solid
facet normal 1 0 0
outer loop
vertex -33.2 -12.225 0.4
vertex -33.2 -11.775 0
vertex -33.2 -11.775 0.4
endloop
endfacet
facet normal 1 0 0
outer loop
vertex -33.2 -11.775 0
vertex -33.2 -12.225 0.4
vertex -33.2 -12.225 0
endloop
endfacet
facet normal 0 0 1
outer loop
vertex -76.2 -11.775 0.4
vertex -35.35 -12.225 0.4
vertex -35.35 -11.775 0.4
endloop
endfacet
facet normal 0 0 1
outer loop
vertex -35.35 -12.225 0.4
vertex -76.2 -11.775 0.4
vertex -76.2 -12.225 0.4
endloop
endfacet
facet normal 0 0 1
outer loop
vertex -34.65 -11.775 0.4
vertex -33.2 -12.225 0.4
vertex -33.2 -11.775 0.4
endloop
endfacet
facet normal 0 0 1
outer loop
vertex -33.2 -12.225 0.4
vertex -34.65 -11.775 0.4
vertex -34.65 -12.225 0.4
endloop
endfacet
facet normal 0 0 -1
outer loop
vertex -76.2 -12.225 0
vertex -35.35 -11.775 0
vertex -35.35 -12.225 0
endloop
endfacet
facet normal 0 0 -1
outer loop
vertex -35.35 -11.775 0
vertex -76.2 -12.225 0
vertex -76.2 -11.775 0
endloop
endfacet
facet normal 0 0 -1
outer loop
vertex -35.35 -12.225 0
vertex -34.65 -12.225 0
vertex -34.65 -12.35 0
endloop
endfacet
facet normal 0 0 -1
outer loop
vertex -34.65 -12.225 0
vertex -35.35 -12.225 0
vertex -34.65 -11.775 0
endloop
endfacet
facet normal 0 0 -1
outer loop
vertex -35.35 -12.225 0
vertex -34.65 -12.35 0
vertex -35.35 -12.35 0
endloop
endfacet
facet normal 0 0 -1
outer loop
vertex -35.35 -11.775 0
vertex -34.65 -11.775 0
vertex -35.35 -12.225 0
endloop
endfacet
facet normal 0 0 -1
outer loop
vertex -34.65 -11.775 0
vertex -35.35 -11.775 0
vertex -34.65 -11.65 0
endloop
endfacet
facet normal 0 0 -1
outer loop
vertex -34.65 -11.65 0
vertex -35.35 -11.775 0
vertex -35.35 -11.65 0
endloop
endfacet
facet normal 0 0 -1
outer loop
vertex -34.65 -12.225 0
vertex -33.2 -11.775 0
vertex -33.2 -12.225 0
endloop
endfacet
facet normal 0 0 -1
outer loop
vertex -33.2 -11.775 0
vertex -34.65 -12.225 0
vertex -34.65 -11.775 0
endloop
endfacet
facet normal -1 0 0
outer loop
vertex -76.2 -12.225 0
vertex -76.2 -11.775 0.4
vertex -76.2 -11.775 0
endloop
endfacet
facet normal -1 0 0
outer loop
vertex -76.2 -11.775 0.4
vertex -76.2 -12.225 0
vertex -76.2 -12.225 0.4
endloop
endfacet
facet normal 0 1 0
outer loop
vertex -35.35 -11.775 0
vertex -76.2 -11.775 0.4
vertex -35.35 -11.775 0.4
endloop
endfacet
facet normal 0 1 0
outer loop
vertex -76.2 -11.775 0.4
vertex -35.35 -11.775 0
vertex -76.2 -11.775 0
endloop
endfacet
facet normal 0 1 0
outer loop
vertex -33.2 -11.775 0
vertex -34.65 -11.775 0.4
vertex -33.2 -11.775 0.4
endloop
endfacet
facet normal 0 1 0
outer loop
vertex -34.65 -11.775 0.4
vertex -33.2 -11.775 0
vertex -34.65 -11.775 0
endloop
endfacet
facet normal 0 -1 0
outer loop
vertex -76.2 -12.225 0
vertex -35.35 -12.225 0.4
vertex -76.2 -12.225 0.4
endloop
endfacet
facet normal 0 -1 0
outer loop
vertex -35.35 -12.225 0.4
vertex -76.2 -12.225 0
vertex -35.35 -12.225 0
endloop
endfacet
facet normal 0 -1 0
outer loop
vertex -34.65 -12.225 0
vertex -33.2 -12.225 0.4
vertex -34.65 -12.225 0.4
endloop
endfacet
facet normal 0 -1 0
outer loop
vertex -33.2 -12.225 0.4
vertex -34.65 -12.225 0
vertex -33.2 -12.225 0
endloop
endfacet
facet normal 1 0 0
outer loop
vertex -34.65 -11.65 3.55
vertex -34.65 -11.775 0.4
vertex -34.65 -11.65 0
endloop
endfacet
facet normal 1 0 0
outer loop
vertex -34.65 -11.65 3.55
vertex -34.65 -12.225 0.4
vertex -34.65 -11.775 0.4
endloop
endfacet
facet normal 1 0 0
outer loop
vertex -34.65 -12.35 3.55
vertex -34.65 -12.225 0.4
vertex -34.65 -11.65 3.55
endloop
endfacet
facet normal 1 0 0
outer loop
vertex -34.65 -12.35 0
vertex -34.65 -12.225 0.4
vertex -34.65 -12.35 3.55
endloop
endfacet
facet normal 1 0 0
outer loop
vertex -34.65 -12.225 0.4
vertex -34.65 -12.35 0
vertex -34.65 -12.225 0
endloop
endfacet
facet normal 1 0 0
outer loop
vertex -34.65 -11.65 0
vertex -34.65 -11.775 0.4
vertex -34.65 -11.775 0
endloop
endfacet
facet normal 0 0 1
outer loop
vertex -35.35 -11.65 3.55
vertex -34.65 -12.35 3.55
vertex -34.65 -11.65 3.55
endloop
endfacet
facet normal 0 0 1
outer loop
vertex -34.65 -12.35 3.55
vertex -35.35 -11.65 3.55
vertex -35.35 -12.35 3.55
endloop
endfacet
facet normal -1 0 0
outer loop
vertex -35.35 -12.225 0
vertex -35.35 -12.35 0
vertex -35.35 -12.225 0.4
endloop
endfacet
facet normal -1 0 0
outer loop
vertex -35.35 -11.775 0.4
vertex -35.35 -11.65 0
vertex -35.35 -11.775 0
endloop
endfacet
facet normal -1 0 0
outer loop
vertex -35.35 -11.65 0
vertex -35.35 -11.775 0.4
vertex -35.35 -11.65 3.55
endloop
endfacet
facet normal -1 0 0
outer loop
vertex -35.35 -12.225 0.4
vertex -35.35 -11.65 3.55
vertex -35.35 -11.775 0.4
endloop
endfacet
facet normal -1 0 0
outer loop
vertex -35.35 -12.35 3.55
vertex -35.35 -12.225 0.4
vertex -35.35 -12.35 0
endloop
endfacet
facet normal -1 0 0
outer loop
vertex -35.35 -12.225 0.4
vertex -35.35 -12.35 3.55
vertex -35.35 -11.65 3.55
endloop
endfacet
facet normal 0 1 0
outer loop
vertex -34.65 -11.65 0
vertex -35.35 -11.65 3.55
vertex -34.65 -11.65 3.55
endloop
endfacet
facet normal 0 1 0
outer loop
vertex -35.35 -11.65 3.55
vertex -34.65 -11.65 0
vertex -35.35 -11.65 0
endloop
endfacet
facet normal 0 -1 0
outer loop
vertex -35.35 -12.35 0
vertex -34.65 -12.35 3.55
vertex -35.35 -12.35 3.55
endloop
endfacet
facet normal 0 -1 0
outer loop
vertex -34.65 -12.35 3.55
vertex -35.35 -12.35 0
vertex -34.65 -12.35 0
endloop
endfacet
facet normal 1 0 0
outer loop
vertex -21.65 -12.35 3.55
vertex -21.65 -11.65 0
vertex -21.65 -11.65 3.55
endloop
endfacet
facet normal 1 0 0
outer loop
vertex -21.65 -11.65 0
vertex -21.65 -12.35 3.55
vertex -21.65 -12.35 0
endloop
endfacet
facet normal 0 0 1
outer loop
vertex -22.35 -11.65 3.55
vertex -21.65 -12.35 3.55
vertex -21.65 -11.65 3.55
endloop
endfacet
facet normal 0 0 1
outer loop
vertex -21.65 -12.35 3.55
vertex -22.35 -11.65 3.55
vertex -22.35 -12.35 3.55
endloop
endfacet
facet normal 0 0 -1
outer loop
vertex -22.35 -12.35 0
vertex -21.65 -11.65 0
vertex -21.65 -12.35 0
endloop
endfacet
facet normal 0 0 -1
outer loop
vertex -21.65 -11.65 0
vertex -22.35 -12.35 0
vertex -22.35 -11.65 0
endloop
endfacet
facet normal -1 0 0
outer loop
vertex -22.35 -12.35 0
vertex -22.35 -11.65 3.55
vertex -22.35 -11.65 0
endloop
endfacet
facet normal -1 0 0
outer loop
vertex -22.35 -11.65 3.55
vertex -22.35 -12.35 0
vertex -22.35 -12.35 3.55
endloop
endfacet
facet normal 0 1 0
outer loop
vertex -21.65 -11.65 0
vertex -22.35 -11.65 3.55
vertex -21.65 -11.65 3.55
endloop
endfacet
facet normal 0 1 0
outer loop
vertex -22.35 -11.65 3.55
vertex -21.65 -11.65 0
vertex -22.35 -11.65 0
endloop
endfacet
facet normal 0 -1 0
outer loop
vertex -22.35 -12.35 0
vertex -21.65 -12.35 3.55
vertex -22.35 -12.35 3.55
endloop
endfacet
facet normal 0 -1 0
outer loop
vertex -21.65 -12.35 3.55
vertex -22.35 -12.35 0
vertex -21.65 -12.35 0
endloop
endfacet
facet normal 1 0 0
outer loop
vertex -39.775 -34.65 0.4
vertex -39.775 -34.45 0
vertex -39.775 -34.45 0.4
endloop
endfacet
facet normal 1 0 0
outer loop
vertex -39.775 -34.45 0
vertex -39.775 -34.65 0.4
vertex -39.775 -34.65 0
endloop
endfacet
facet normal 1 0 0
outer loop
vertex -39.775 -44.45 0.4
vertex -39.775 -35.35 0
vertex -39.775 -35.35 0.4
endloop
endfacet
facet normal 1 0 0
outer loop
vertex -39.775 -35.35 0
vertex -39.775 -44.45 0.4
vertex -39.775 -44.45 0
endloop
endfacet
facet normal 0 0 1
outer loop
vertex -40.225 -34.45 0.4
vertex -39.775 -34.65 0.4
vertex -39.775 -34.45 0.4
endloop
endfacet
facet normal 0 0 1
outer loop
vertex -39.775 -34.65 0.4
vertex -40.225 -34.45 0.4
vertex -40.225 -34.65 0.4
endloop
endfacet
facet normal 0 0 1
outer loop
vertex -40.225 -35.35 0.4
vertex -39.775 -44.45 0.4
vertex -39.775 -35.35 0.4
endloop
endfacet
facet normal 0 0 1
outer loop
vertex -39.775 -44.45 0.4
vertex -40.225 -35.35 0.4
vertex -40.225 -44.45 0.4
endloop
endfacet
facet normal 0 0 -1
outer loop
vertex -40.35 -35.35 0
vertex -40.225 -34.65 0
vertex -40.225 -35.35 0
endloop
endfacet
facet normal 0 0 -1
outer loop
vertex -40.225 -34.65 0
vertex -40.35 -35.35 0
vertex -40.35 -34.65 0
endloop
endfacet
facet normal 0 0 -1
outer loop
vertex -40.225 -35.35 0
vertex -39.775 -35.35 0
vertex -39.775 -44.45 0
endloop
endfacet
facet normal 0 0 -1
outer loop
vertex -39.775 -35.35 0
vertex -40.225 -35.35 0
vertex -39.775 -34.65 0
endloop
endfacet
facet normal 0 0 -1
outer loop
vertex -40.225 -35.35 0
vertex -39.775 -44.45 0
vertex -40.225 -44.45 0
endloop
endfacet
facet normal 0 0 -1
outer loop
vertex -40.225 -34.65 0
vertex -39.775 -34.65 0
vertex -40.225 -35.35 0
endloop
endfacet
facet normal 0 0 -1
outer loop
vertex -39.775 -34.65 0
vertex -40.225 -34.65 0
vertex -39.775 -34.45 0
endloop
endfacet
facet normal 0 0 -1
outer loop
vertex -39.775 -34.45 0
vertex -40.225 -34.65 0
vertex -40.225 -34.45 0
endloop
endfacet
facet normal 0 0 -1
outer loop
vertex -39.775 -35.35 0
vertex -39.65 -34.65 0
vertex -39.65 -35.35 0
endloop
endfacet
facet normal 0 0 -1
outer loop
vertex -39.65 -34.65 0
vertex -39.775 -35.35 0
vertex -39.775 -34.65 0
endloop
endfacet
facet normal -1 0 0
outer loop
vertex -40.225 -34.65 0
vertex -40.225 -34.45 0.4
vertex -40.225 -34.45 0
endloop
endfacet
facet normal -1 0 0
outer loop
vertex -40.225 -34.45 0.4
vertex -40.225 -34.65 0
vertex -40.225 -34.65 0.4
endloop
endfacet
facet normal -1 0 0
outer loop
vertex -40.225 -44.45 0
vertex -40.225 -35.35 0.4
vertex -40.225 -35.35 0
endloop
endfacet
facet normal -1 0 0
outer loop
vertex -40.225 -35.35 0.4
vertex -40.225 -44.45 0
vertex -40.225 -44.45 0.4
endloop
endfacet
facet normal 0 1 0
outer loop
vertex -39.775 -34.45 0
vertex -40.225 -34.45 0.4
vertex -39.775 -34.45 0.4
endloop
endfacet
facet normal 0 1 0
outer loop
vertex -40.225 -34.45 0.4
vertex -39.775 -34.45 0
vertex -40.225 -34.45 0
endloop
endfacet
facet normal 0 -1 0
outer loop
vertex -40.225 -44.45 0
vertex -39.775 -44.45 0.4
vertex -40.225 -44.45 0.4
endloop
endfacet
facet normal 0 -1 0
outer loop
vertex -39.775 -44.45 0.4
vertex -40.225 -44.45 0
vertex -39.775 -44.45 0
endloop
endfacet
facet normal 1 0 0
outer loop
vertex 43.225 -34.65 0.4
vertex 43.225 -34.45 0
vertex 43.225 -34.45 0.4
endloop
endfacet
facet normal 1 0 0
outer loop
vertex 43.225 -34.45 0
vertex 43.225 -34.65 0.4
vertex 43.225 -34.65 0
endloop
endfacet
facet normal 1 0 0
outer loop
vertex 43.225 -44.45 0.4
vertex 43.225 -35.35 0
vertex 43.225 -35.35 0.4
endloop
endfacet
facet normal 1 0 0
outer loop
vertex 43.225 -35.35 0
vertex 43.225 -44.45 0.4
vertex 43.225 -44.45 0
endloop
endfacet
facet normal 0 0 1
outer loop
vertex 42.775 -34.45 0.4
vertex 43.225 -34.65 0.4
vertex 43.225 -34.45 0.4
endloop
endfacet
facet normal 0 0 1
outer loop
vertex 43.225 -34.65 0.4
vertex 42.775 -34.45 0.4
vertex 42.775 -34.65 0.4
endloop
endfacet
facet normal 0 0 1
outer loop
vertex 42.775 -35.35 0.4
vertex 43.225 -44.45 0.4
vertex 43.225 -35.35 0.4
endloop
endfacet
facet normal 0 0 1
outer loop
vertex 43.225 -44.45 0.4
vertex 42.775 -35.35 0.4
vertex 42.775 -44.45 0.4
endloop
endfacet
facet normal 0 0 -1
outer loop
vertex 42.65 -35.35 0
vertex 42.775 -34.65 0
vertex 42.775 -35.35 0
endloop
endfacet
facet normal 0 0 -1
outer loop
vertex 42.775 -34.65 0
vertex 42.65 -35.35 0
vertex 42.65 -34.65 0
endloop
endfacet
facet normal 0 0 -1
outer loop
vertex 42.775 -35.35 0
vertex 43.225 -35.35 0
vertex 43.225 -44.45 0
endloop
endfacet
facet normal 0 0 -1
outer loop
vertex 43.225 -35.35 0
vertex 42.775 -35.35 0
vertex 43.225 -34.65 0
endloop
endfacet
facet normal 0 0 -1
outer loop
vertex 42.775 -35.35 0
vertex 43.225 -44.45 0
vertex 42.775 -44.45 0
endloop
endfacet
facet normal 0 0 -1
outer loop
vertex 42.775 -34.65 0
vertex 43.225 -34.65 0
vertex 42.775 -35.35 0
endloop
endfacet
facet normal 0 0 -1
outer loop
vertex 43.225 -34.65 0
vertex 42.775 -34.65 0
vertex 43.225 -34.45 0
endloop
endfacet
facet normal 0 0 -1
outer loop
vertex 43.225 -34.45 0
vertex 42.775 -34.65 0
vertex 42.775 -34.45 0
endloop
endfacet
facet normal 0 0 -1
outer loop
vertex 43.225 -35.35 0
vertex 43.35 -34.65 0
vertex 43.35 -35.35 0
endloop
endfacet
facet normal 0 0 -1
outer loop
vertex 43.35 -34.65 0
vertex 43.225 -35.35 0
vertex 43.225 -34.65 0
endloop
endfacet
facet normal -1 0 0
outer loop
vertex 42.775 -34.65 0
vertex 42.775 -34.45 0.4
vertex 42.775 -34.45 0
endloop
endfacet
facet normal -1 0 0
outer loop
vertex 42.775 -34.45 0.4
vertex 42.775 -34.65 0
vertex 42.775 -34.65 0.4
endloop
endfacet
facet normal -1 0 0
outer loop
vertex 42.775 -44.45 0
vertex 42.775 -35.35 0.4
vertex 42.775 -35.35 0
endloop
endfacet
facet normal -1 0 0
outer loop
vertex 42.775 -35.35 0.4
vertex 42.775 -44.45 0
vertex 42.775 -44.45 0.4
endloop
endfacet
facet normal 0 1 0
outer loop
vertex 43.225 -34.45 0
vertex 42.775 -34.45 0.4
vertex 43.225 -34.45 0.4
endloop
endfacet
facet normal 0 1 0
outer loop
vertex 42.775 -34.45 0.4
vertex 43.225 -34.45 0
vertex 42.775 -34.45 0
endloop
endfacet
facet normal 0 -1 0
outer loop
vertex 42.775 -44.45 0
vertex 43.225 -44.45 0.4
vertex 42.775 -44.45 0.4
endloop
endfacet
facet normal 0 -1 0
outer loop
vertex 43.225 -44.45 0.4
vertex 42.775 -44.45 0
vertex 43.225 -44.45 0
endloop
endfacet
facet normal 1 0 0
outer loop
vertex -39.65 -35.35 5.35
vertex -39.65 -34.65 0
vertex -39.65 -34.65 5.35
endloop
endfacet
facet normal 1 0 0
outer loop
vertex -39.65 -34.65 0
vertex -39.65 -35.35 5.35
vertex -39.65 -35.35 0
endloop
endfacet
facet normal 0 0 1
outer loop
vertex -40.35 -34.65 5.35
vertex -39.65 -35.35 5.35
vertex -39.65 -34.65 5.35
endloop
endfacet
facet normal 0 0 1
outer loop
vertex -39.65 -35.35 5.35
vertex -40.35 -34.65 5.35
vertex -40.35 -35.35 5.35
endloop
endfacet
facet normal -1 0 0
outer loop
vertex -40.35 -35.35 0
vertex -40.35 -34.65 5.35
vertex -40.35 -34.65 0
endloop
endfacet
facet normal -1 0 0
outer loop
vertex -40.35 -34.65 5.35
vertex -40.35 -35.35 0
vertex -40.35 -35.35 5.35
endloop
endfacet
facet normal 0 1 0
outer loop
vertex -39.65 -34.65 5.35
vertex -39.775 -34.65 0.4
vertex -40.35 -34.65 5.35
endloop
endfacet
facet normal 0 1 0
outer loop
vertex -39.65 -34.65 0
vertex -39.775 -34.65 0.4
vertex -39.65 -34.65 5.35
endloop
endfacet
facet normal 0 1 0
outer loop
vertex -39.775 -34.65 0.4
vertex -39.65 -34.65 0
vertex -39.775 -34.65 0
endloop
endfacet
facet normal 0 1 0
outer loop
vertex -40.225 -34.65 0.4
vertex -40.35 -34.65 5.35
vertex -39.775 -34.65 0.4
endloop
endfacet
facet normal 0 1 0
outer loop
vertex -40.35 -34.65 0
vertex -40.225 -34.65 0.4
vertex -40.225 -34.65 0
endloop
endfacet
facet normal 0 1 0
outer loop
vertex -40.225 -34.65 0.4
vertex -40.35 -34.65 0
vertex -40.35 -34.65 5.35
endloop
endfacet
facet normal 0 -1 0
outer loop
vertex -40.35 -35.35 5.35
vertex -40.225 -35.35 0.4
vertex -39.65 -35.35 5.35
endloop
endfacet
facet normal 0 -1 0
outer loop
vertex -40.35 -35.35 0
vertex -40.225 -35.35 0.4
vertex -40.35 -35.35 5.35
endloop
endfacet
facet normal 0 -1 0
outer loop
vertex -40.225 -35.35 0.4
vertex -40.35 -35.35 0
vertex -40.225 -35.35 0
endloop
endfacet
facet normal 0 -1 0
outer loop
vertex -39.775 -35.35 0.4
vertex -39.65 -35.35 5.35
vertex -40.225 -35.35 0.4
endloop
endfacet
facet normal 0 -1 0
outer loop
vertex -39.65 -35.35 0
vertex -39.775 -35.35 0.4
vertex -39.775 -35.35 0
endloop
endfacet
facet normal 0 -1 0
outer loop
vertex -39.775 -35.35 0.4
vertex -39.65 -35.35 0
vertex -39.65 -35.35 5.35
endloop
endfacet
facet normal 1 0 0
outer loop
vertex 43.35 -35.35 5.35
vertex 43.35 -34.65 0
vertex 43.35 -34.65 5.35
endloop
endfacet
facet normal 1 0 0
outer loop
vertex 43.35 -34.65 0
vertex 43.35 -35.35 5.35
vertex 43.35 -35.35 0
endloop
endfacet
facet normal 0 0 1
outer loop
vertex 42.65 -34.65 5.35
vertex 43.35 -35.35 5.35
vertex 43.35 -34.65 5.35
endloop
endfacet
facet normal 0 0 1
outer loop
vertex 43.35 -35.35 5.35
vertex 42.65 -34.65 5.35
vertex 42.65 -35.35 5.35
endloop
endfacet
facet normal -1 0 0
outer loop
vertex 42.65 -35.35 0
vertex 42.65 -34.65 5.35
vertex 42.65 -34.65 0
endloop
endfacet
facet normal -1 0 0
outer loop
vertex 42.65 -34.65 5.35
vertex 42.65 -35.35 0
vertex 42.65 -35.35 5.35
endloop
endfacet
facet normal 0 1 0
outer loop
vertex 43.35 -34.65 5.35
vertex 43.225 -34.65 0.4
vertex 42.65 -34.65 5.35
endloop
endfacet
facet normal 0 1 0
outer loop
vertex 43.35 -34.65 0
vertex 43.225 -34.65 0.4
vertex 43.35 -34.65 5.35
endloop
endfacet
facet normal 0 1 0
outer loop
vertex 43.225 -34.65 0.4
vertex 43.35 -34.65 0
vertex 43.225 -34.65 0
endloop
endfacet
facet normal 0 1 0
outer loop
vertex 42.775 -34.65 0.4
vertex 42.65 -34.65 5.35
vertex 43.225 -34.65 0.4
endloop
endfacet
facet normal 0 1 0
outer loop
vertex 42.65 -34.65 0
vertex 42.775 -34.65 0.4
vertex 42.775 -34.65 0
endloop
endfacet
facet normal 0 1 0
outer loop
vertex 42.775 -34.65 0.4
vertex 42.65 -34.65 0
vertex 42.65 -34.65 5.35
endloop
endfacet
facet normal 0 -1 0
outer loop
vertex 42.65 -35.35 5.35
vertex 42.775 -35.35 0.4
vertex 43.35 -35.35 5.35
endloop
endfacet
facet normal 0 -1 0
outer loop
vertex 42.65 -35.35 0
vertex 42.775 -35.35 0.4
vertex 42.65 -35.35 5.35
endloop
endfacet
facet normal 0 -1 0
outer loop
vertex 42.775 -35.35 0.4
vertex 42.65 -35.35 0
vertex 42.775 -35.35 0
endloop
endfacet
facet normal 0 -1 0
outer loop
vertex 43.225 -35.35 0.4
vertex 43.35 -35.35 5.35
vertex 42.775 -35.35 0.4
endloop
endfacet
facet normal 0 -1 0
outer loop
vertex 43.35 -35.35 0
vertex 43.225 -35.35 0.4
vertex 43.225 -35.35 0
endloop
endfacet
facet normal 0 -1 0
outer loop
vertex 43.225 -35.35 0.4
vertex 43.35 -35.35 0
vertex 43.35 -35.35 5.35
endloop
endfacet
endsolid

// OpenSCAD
// Minimal clear-PETG supports for the shallow Nubble contact stack.
// The traces begin beneath the hidden 4x6 contact-frame margin; no magnets
// and no full transparent carrier sheet are used.

trace_w = 0.45; // two 0.2 mm nozzle lines
trace_t = 0.40;
post_w = 0.70;

module trace(x, y, length, vertical = false) {
    if (vertical)
        translate([x - trace_w/2, y, 0]) cube([trace_w, length, trace_t]);
    else
        translate([x, y - trace_w/2, 0]) cube([length, trace_w, trace_t]);
}

module post(x, y, height) {
    translate([x - post_w/2, y - post_w/2, 0]) cube([post_w, post_w, height]);
}

// The breaker is isolated over open water. A left-edge trace hides beneath
// the black contact-frame margin, then two small posts meet its rear face.
trace(-76.2, -12.0, 43.0);
post(-35.0, -12.0, 3.55);
post(-22.0, -12.0, 3.55);

// Foreground boulders lead into the lower frame margin. These short traces
// are hidden by the wood sight-mat / black contact ring when the door closes.
trace(-40.0, -44.45, 10.0, vertical = true);
trace(43.0, -44.45, 10.0, vertical = true);
post(-40.0, -35.0, 5.35);
post(43.0, -35.0, 5.35);
